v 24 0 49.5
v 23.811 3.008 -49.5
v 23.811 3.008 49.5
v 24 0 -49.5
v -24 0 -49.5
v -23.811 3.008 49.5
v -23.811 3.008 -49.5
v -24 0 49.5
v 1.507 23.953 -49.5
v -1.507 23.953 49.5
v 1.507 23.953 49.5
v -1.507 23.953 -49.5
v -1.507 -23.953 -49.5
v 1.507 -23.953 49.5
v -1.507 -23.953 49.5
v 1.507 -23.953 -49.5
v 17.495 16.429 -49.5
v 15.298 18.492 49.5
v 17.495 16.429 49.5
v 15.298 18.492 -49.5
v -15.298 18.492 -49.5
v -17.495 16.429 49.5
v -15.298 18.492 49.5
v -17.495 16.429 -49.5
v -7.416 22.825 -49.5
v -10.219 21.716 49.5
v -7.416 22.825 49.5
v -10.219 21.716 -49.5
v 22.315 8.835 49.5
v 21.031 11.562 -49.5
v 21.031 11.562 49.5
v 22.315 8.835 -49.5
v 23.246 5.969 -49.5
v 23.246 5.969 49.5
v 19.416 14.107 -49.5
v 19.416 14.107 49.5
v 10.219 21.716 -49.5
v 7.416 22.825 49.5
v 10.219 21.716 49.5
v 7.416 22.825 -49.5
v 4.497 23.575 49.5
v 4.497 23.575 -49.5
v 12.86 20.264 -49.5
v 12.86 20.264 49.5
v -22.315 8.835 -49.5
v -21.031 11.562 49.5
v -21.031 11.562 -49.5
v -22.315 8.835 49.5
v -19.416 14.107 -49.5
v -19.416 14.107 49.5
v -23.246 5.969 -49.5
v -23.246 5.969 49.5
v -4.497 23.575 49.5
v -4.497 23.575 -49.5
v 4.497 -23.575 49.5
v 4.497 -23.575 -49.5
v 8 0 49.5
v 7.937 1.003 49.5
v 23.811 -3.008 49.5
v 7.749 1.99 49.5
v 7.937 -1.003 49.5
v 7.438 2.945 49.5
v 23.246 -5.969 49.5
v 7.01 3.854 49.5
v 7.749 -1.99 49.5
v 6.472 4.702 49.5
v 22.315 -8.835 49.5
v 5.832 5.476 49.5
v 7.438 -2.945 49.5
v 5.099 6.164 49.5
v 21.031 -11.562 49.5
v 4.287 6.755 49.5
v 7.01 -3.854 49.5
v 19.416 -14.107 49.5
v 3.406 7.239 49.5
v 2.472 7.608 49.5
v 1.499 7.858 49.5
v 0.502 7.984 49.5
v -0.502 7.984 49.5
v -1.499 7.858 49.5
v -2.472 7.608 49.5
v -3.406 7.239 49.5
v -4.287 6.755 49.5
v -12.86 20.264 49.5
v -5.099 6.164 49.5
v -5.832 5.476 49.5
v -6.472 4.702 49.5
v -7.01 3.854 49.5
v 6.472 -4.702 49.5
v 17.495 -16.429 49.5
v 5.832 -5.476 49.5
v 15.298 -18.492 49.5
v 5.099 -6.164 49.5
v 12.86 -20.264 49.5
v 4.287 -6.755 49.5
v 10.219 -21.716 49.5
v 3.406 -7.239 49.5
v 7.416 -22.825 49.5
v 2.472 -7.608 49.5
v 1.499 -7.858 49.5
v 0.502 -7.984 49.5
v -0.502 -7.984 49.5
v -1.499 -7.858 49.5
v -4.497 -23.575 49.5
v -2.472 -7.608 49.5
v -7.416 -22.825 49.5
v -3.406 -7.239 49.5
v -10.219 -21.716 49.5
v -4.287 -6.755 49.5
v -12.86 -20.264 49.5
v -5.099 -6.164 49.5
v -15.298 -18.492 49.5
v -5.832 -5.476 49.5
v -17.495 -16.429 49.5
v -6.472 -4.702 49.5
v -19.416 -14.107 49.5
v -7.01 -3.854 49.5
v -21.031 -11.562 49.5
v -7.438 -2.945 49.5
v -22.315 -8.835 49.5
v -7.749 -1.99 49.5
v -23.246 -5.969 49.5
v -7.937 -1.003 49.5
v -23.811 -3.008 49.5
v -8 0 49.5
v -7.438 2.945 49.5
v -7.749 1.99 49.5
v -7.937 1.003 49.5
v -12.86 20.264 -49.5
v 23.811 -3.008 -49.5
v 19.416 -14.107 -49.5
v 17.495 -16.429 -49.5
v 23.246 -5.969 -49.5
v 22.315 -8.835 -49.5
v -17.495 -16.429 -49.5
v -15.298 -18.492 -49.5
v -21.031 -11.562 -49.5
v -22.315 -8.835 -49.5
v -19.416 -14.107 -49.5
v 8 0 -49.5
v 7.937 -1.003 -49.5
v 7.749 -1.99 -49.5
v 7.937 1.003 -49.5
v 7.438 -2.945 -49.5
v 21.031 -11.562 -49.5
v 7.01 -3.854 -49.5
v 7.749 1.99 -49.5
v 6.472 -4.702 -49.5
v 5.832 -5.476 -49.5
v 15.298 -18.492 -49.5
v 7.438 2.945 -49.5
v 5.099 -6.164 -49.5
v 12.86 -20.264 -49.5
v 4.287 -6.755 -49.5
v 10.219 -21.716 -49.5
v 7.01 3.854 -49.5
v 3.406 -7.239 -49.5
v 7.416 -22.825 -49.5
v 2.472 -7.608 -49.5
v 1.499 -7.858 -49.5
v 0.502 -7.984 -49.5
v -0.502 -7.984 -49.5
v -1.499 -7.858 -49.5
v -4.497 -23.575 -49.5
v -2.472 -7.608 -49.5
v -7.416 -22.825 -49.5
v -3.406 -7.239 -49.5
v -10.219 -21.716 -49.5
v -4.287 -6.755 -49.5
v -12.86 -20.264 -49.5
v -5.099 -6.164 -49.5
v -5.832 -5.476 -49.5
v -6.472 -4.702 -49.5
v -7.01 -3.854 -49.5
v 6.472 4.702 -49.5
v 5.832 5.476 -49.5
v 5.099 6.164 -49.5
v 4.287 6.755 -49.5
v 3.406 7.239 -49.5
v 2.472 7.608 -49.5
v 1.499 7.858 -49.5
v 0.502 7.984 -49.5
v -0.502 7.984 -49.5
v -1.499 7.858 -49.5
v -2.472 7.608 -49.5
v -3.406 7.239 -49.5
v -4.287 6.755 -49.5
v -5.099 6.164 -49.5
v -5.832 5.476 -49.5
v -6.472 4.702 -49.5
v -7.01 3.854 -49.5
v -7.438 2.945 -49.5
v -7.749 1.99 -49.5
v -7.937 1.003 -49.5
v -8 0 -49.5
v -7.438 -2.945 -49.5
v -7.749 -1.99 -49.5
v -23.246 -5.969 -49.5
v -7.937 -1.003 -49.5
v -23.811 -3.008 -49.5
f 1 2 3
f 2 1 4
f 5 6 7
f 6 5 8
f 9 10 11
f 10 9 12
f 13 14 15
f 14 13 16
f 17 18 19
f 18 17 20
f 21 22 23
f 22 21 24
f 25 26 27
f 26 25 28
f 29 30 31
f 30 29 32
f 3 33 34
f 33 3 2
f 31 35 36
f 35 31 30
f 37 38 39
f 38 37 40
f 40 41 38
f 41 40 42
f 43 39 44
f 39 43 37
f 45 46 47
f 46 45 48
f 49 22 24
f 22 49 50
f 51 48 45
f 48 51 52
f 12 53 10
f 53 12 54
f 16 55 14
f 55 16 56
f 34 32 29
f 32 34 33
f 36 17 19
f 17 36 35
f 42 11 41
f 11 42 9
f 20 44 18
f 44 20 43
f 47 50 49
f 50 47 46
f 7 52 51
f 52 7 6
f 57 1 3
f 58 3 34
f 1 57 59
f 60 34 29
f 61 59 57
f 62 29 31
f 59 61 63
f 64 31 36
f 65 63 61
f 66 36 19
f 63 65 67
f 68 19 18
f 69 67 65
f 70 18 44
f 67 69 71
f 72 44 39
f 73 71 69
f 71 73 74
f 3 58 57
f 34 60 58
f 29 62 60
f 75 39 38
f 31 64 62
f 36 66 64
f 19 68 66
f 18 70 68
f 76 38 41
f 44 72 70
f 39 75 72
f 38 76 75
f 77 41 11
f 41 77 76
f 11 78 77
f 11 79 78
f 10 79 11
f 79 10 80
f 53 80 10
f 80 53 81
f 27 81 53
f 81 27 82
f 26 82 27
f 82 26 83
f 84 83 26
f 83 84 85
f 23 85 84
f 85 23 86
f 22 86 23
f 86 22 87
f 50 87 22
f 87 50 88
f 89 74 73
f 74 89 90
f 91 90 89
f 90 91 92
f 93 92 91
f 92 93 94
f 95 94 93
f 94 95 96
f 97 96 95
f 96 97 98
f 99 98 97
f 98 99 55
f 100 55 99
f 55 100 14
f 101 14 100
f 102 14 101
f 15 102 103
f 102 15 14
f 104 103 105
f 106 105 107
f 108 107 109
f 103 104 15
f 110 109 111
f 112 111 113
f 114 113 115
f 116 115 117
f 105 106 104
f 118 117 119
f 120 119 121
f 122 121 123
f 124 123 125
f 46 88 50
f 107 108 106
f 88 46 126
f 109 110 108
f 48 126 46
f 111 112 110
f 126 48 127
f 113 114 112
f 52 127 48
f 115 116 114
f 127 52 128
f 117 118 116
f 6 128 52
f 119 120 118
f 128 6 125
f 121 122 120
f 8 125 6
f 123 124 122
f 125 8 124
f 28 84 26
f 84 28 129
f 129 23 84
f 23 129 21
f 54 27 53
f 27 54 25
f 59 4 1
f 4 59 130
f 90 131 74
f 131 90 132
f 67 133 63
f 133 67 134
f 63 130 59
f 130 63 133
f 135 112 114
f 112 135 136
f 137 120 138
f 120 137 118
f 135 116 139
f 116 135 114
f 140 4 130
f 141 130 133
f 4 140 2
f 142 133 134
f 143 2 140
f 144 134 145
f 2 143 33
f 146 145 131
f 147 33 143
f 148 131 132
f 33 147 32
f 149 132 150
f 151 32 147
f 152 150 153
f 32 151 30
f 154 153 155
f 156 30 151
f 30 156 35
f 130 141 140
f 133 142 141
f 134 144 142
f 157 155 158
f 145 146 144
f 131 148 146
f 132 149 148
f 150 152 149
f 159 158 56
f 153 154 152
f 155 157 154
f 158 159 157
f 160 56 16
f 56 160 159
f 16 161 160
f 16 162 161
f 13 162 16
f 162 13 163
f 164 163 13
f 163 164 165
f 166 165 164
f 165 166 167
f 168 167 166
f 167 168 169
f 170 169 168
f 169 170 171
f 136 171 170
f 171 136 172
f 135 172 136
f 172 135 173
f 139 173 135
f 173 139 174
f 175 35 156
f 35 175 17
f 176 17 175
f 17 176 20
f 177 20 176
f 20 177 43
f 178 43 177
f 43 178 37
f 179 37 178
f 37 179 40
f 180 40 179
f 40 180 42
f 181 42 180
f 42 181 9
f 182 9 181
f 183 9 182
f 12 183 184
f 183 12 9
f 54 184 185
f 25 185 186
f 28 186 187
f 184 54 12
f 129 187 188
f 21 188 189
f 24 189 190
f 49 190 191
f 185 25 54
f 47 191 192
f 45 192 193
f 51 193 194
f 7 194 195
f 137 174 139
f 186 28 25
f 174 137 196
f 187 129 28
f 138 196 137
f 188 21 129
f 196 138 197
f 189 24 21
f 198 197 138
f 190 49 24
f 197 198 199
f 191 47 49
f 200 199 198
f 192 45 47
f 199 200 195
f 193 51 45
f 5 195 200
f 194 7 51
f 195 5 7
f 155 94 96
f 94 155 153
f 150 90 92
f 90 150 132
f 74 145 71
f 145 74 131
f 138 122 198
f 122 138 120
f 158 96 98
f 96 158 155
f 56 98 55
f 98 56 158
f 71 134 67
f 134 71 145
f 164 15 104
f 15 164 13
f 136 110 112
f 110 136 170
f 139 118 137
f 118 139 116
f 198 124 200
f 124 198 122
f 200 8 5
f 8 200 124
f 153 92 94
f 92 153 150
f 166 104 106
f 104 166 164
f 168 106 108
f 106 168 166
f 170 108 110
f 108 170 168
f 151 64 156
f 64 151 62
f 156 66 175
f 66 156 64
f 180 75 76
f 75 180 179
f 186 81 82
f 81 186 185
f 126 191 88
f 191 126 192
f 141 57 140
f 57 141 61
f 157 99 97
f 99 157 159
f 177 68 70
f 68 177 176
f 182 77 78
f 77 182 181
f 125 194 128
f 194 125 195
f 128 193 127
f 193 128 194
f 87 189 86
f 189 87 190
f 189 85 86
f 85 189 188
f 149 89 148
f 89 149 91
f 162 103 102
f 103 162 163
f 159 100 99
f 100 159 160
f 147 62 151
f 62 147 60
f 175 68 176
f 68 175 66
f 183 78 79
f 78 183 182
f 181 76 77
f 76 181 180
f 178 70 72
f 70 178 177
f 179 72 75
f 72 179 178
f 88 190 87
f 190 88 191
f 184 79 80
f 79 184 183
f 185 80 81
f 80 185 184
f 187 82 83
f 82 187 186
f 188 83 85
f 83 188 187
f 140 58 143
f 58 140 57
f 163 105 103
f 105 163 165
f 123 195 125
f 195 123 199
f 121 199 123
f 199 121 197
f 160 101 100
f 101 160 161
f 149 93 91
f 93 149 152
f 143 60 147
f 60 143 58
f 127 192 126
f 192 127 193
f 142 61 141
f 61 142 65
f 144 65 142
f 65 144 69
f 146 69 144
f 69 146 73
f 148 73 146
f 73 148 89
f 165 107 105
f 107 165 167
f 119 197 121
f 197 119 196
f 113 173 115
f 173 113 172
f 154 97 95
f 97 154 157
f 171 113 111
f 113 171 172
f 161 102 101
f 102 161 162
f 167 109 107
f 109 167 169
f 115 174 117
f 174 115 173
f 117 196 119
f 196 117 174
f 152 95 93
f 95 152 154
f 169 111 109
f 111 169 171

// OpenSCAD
$fn = 50;


difference() {
	union() {
		translate(v = [0, 0, -49.5000000000]) {
			cylinder(h = 99, r = 24.0000000000);
		}
	}
	union() {
		translate(v = [0, 0, -100.0000000000]) {
			cylinder(h = 200, r = 8);
		}
	}
}
